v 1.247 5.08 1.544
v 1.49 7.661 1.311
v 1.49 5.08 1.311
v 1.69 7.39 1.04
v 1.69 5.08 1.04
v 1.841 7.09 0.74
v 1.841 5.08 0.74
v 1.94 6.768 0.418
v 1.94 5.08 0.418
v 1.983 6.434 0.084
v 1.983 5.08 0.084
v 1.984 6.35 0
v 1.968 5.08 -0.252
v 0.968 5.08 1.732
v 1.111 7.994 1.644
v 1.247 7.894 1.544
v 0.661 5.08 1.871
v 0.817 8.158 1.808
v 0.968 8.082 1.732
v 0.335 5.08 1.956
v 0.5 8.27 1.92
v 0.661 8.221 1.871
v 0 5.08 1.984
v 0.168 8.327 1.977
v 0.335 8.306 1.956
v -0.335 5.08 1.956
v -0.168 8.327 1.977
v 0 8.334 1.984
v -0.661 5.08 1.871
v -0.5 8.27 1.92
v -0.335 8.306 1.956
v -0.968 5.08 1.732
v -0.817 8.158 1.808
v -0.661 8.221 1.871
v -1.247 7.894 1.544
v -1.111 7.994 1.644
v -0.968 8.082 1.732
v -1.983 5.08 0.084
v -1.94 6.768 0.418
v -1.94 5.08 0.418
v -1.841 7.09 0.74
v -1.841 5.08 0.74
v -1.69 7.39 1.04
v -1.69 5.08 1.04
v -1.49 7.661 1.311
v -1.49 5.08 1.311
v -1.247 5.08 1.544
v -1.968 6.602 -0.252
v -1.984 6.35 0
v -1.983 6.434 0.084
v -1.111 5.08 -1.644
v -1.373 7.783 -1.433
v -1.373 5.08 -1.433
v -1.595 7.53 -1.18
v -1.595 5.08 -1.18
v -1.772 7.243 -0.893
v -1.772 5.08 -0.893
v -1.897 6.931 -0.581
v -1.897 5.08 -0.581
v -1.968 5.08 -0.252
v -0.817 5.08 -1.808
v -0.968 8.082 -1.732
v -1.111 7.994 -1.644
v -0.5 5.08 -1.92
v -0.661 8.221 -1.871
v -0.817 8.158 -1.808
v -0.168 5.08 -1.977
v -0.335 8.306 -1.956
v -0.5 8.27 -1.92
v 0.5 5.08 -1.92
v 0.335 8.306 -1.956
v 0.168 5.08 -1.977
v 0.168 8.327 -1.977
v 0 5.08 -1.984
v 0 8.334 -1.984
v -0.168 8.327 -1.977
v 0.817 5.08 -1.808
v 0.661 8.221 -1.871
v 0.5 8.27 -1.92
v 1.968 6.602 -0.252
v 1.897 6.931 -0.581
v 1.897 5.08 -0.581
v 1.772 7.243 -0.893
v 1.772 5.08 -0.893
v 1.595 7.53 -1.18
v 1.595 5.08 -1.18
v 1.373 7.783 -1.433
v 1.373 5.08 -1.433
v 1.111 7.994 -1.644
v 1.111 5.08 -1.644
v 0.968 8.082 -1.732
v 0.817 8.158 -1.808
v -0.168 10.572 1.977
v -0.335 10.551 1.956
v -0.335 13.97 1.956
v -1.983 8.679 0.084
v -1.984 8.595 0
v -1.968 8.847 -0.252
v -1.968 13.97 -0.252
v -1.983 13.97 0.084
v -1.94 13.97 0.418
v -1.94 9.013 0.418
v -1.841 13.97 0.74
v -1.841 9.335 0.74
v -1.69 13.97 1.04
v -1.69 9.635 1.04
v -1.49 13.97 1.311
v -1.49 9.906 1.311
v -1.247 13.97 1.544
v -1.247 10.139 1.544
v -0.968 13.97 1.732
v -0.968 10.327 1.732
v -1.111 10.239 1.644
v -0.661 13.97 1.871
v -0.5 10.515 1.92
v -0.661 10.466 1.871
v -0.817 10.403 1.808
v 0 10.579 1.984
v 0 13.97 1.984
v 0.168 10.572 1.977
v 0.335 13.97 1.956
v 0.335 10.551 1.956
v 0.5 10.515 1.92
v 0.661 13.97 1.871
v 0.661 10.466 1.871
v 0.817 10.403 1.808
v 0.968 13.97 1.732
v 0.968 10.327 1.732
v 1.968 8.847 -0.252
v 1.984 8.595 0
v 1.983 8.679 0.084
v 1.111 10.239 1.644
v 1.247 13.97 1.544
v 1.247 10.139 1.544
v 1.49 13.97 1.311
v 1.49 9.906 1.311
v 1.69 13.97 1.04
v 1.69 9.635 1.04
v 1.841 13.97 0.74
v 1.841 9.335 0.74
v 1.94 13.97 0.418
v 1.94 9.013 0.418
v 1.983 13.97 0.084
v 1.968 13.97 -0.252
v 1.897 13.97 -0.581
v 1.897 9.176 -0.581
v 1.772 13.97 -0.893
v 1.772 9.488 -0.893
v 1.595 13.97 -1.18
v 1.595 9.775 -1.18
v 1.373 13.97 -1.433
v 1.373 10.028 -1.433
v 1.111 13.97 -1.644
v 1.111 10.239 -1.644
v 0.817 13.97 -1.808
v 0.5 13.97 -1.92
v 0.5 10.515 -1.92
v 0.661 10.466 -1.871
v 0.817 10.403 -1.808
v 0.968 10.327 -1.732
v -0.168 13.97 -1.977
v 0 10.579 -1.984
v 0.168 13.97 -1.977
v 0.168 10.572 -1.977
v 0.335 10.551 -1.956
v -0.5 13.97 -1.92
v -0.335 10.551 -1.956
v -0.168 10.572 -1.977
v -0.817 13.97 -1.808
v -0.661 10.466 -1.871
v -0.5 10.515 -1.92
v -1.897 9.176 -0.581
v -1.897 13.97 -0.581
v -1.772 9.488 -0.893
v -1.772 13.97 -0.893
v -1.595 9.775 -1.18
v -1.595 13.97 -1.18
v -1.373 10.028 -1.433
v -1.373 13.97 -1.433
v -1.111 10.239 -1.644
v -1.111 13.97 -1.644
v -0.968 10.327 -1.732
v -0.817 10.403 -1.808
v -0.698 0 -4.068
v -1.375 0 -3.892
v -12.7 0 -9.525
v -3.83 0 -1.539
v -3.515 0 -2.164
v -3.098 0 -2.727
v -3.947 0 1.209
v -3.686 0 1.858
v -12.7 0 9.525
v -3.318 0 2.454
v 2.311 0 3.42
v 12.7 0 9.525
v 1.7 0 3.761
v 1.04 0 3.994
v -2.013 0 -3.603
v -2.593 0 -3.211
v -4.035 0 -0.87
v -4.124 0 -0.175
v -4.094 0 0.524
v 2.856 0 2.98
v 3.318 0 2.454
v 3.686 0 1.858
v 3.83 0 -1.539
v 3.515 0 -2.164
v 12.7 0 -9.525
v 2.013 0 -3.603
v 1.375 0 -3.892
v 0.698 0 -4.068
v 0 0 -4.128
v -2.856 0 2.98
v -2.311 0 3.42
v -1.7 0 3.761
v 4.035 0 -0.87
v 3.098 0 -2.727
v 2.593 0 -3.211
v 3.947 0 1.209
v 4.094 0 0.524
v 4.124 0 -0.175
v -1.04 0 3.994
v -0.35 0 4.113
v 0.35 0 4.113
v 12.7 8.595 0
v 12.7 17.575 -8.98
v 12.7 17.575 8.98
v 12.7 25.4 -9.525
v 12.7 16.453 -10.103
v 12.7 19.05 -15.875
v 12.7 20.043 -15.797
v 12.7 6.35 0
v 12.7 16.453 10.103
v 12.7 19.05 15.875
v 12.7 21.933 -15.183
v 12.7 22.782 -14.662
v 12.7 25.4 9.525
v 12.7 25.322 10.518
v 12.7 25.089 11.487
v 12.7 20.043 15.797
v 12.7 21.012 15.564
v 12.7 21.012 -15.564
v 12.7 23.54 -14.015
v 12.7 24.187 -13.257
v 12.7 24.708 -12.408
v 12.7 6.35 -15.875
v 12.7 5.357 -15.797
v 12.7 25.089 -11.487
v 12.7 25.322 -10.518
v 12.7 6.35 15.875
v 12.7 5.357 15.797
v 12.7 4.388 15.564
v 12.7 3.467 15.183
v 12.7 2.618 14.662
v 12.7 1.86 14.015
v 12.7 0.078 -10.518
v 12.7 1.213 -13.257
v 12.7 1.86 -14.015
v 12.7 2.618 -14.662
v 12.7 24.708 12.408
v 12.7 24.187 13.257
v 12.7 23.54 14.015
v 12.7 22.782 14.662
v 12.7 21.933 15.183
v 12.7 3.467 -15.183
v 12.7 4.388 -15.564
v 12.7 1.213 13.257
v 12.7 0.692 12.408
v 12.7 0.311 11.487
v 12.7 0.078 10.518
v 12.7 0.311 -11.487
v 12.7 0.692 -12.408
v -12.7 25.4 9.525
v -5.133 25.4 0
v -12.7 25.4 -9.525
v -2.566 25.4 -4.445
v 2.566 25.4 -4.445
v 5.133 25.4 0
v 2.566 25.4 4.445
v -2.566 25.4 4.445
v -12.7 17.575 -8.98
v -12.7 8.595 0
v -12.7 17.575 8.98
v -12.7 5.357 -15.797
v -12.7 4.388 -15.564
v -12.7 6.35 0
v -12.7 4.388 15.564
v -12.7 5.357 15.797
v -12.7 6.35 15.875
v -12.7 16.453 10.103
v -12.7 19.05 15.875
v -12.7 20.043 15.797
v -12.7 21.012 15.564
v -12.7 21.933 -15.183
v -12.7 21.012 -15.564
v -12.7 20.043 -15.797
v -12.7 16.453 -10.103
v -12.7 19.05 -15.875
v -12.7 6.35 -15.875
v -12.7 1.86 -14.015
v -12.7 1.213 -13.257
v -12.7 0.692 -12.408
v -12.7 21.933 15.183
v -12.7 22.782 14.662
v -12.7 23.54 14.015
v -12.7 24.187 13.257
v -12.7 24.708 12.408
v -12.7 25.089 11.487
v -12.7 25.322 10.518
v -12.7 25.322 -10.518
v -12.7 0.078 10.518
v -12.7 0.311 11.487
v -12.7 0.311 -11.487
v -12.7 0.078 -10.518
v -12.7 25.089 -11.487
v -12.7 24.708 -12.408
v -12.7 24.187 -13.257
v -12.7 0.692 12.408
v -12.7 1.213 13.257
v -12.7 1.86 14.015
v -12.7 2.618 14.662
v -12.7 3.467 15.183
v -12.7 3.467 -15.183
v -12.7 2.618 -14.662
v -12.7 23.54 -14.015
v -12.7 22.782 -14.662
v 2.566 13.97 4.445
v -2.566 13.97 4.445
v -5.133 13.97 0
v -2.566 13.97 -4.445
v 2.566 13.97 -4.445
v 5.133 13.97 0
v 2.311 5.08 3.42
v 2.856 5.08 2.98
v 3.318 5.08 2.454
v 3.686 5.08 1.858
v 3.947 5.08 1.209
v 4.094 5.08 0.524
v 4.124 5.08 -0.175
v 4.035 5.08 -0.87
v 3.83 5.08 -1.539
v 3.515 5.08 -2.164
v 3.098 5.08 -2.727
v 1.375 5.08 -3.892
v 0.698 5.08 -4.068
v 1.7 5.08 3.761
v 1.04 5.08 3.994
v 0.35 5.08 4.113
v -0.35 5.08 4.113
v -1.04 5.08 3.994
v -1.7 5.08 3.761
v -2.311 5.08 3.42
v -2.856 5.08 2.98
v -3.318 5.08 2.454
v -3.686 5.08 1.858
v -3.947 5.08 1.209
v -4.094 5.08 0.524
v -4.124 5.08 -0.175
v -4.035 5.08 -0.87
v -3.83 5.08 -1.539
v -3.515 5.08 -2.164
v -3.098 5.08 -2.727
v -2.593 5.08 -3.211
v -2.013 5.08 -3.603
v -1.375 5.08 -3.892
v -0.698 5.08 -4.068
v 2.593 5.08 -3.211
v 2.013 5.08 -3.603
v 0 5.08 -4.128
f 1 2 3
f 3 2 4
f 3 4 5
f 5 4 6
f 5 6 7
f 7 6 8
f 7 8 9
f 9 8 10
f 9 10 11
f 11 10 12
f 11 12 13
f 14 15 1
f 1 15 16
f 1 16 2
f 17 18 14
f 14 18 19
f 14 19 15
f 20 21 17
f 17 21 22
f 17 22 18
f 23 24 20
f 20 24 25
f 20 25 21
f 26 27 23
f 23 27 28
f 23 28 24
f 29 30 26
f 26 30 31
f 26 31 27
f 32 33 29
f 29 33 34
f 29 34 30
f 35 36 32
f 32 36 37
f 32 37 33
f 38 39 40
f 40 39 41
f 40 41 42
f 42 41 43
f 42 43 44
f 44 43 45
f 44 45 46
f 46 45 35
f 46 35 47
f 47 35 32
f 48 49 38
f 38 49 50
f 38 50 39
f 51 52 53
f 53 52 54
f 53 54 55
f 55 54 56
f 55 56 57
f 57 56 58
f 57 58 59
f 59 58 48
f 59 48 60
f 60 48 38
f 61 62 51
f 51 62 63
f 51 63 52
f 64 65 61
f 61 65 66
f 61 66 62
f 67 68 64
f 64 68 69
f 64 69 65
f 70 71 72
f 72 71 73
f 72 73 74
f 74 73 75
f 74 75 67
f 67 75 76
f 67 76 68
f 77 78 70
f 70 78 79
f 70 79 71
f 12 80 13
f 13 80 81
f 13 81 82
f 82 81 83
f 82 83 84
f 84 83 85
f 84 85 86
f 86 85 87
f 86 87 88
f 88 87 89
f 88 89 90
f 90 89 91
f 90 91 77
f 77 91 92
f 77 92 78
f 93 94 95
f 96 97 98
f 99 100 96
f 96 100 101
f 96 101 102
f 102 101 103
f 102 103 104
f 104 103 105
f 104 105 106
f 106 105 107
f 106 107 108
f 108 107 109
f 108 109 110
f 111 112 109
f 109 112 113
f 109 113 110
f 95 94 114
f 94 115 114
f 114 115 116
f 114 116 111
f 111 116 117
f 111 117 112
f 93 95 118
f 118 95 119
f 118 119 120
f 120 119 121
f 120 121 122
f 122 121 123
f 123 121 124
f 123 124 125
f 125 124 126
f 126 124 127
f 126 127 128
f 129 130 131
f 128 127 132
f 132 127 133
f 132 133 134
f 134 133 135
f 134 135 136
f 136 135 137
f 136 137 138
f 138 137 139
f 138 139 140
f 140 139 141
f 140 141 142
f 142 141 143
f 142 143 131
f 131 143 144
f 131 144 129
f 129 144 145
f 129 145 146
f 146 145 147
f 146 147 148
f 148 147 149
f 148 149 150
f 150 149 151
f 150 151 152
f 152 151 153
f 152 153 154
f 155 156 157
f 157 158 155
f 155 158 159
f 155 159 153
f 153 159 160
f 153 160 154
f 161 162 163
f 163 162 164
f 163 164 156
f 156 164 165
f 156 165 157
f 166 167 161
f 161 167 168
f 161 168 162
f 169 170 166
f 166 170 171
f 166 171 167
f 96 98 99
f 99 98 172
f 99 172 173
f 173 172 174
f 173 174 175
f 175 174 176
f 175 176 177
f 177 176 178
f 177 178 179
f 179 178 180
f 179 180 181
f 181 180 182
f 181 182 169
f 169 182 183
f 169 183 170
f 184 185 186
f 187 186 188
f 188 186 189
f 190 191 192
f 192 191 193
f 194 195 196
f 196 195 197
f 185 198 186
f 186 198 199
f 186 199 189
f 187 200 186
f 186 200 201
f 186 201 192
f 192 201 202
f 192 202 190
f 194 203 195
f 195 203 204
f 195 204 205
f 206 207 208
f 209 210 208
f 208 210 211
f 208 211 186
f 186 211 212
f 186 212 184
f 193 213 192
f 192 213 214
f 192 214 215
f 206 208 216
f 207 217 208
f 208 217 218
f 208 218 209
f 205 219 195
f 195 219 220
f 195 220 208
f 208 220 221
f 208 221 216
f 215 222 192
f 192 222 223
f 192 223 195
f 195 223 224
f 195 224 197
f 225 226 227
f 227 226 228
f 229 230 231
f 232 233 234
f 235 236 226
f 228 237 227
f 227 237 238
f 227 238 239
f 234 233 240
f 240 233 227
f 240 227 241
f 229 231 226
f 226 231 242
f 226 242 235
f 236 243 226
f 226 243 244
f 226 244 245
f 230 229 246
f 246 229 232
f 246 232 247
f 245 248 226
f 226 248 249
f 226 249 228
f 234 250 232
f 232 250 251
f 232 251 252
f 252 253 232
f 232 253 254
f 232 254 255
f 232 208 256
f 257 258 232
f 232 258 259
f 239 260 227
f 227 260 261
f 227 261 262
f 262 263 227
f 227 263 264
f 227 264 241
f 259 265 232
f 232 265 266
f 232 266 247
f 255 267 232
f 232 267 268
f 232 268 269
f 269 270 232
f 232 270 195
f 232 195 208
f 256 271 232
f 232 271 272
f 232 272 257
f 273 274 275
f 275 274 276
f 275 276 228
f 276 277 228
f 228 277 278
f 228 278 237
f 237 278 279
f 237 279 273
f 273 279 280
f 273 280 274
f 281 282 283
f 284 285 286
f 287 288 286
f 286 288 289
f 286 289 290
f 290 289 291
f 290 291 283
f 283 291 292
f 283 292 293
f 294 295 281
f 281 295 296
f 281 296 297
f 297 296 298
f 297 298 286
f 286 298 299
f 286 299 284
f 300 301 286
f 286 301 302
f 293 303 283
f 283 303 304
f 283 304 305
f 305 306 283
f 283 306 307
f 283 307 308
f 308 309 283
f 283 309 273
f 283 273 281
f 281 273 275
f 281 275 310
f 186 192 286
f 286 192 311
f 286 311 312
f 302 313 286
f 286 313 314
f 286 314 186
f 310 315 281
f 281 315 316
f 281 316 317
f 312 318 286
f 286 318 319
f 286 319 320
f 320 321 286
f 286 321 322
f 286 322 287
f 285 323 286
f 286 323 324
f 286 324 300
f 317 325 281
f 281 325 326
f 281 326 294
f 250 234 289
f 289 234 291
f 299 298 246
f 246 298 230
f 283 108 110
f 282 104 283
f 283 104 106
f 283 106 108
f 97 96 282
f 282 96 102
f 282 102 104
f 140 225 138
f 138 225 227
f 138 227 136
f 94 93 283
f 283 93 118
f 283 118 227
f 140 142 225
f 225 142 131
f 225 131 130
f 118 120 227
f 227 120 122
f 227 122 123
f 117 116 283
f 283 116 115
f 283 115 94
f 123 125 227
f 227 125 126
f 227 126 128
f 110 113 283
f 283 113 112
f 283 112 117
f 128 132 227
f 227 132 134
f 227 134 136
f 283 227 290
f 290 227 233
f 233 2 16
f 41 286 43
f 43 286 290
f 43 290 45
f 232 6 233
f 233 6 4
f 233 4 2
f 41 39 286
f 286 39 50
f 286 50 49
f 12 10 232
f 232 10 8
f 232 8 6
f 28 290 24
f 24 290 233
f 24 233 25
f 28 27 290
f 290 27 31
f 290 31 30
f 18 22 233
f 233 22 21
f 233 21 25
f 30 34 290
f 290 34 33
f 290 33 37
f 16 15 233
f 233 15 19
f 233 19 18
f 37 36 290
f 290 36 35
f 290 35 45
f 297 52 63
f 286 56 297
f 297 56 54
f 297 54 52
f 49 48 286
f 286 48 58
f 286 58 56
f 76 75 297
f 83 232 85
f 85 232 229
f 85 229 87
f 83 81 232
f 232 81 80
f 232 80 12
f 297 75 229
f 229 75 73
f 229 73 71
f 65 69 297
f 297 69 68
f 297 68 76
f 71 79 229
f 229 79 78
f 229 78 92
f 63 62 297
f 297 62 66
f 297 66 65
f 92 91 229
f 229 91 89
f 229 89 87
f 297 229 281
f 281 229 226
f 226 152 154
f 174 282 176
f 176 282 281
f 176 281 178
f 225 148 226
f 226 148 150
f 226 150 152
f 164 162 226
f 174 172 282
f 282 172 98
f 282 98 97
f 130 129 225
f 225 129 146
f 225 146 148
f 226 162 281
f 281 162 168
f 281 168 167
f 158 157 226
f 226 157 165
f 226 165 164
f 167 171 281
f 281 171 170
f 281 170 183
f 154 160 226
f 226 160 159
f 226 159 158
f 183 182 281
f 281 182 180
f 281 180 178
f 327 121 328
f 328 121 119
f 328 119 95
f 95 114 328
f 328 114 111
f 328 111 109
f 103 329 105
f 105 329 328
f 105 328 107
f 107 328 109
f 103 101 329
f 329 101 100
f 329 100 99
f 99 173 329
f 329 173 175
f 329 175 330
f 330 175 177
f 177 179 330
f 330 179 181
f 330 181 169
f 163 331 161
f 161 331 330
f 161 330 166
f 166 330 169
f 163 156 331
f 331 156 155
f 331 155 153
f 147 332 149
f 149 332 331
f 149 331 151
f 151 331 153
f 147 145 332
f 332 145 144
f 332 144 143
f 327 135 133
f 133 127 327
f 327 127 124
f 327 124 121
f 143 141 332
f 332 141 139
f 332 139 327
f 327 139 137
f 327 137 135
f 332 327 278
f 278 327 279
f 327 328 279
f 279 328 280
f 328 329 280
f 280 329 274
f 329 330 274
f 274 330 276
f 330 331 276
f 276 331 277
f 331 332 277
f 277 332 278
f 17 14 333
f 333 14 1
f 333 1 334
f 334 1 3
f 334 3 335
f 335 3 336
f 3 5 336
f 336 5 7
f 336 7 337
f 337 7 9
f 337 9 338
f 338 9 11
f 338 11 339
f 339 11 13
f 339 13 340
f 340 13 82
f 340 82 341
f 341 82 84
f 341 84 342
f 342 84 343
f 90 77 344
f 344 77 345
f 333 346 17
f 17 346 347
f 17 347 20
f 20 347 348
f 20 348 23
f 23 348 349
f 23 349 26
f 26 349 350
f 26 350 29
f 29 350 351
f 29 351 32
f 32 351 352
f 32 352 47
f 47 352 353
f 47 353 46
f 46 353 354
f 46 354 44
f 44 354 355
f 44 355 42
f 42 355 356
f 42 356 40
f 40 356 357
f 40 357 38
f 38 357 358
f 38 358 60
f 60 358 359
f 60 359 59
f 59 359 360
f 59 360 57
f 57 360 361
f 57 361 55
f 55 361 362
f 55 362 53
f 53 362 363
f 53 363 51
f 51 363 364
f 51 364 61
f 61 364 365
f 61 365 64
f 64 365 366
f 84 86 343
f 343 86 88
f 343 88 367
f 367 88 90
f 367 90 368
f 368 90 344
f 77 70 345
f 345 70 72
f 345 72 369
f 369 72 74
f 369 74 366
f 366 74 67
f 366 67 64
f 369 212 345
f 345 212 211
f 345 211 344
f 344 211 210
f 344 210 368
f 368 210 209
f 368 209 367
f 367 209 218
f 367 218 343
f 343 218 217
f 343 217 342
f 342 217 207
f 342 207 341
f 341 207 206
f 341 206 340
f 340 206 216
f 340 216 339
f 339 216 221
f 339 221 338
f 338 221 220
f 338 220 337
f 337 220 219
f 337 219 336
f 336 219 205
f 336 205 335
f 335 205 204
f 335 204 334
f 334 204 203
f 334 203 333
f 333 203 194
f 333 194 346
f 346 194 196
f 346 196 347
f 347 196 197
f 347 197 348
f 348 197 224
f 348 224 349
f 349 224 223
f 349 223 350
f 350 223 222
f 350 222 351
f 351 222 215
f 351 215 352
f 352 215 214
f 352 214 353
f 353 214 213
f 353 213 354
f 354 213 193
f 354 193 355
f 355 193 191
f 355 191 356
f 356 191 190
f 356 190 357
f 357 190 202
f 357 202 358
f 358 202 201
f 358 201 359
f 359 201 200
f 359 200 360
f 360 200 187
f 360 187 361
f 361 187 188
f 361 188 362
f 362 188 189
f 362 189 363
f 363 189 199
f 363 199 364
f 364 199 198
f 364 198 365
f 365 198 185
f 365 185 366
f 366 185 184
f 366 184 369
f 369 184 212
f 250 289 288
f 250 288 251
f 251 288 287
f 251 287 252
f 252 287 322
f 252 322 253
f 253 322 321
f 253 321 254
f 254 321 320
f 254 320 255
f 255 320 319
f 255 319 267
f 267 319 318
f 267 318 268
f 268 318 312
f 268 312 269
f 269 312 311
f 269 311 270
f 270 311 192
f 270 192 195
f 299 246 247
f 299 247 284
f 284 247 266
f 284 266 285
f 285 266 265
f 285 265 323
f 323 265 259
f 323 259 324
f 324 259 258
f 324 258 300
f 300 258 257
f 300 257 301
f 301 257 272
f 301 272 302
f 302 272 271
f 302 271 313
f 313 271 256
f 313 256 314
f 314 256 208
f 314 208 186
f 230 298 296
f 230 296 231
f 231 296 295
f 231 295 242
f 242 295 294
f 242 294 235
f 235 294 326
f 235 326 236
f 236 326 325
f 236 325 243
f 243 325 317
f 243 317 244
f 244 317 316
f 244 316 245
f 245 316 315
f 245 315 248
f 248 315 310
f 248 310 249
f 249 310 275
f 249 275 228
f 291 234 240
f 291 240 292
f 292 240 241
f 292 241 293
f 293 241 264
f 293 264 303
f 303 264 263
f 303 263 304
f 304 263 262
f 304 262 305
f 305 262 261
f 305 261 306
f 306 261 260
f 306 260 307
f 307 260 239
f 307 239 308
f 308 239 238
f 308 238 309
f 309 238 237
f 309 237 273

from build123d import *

# Parameters (mm, degrees)
BOSS_EXTRUDE1_DEPTH         = 15.875
CUT_EXTRUDE1_DEPTH          = 152.4
F_1_4_0_25_DIAMETER_HOLE1_D = 3.96875
CUT_EXTRUDE2_DEPTH          = 11.43
SKETCH8_R                   = 4.1275
CUT_EXTRUDE3_DEPTH          = 5.08
FILLET1_R                   = 6.35


with BuildPart() as part:
    # Sketch1 → Boss-Extrude1 (new, symmetric)
    with BuildSketch(Plane.XY):
        Polygon((0, 0), (12.7, 0), (12.7, 25.4), (-12.7, 25.4), (-12.7, 0), align=None)
    extrude(amount=BOSS_EXTRUDE1_DEPTH, both=True)

    # Sketch2 → Cut-Extrude1 (cut)
    with BuildSketch(Plane.ZY.offset(12.7)):
        Polygon((0, 8.59506403), (-8.980256121, 17.575320151), (-10.102788136, 16.452788136), (0, 6.35), (10.102788136, 16.452788136), (8.980256121, 17.575320151), align=None)
    extrude(amount=-CUT_EXTRUDE1_DEPTH, mode=Mode.SUBTRACT)

    # 1/4 (0.25) Diameter Hole1 (through all)
    with Locations(Plane(origin=(0, 25.4, 0), x_dir=(1, 0, 0), z_dir=(0, 1, 0))):
        with Locations((0, 0), (76.2, 0)):
            Hole(F_1_4_0_25_DIAMETER_HOLE1_D / 2)

    # Sketch7 → Cut-Extrude2 (cut)
    with BuildSketch(Plane(origin=(0, 25.4, 0), x_dir=(1, 0, 0), z_dir=(0, 1, 0))):
        Polygon((5.132643893, 0), (2.566321947, 4.445), (-2.566321947, 4.445), (-5.132643893, 0), (-2.566321947, -4.445), (2.566321947, -4.445), align=None)
    extrude(amount=-CUT_EXTRUDE2_DEPTH, mode=Mode.SUBTRACT)

    # Sketch8 → Cut-Extrude3 (cut)
    with BuildSketch(Plane.XZ):
        with Locations(Location((0, 0, 0), (0, 0, 270))):
            Circle(SKETCH8_R)
    extrude(amount=-CUT_EXTRUDE3_DEPTH, mode=Mode.SUBTRACT)

    # Fillet1
    fillet1_edges = [part.edges().sort_by_distance(p)[0] for p in [
        (0, 25.4, 15.875),
        (0, 0, 15.875),
        (0, 25.4, -15.875),
        (0, 0, -15.875),
    ]]
    fillet(fillet1_edges, radius=FILLET1_R)


solid = part.part
